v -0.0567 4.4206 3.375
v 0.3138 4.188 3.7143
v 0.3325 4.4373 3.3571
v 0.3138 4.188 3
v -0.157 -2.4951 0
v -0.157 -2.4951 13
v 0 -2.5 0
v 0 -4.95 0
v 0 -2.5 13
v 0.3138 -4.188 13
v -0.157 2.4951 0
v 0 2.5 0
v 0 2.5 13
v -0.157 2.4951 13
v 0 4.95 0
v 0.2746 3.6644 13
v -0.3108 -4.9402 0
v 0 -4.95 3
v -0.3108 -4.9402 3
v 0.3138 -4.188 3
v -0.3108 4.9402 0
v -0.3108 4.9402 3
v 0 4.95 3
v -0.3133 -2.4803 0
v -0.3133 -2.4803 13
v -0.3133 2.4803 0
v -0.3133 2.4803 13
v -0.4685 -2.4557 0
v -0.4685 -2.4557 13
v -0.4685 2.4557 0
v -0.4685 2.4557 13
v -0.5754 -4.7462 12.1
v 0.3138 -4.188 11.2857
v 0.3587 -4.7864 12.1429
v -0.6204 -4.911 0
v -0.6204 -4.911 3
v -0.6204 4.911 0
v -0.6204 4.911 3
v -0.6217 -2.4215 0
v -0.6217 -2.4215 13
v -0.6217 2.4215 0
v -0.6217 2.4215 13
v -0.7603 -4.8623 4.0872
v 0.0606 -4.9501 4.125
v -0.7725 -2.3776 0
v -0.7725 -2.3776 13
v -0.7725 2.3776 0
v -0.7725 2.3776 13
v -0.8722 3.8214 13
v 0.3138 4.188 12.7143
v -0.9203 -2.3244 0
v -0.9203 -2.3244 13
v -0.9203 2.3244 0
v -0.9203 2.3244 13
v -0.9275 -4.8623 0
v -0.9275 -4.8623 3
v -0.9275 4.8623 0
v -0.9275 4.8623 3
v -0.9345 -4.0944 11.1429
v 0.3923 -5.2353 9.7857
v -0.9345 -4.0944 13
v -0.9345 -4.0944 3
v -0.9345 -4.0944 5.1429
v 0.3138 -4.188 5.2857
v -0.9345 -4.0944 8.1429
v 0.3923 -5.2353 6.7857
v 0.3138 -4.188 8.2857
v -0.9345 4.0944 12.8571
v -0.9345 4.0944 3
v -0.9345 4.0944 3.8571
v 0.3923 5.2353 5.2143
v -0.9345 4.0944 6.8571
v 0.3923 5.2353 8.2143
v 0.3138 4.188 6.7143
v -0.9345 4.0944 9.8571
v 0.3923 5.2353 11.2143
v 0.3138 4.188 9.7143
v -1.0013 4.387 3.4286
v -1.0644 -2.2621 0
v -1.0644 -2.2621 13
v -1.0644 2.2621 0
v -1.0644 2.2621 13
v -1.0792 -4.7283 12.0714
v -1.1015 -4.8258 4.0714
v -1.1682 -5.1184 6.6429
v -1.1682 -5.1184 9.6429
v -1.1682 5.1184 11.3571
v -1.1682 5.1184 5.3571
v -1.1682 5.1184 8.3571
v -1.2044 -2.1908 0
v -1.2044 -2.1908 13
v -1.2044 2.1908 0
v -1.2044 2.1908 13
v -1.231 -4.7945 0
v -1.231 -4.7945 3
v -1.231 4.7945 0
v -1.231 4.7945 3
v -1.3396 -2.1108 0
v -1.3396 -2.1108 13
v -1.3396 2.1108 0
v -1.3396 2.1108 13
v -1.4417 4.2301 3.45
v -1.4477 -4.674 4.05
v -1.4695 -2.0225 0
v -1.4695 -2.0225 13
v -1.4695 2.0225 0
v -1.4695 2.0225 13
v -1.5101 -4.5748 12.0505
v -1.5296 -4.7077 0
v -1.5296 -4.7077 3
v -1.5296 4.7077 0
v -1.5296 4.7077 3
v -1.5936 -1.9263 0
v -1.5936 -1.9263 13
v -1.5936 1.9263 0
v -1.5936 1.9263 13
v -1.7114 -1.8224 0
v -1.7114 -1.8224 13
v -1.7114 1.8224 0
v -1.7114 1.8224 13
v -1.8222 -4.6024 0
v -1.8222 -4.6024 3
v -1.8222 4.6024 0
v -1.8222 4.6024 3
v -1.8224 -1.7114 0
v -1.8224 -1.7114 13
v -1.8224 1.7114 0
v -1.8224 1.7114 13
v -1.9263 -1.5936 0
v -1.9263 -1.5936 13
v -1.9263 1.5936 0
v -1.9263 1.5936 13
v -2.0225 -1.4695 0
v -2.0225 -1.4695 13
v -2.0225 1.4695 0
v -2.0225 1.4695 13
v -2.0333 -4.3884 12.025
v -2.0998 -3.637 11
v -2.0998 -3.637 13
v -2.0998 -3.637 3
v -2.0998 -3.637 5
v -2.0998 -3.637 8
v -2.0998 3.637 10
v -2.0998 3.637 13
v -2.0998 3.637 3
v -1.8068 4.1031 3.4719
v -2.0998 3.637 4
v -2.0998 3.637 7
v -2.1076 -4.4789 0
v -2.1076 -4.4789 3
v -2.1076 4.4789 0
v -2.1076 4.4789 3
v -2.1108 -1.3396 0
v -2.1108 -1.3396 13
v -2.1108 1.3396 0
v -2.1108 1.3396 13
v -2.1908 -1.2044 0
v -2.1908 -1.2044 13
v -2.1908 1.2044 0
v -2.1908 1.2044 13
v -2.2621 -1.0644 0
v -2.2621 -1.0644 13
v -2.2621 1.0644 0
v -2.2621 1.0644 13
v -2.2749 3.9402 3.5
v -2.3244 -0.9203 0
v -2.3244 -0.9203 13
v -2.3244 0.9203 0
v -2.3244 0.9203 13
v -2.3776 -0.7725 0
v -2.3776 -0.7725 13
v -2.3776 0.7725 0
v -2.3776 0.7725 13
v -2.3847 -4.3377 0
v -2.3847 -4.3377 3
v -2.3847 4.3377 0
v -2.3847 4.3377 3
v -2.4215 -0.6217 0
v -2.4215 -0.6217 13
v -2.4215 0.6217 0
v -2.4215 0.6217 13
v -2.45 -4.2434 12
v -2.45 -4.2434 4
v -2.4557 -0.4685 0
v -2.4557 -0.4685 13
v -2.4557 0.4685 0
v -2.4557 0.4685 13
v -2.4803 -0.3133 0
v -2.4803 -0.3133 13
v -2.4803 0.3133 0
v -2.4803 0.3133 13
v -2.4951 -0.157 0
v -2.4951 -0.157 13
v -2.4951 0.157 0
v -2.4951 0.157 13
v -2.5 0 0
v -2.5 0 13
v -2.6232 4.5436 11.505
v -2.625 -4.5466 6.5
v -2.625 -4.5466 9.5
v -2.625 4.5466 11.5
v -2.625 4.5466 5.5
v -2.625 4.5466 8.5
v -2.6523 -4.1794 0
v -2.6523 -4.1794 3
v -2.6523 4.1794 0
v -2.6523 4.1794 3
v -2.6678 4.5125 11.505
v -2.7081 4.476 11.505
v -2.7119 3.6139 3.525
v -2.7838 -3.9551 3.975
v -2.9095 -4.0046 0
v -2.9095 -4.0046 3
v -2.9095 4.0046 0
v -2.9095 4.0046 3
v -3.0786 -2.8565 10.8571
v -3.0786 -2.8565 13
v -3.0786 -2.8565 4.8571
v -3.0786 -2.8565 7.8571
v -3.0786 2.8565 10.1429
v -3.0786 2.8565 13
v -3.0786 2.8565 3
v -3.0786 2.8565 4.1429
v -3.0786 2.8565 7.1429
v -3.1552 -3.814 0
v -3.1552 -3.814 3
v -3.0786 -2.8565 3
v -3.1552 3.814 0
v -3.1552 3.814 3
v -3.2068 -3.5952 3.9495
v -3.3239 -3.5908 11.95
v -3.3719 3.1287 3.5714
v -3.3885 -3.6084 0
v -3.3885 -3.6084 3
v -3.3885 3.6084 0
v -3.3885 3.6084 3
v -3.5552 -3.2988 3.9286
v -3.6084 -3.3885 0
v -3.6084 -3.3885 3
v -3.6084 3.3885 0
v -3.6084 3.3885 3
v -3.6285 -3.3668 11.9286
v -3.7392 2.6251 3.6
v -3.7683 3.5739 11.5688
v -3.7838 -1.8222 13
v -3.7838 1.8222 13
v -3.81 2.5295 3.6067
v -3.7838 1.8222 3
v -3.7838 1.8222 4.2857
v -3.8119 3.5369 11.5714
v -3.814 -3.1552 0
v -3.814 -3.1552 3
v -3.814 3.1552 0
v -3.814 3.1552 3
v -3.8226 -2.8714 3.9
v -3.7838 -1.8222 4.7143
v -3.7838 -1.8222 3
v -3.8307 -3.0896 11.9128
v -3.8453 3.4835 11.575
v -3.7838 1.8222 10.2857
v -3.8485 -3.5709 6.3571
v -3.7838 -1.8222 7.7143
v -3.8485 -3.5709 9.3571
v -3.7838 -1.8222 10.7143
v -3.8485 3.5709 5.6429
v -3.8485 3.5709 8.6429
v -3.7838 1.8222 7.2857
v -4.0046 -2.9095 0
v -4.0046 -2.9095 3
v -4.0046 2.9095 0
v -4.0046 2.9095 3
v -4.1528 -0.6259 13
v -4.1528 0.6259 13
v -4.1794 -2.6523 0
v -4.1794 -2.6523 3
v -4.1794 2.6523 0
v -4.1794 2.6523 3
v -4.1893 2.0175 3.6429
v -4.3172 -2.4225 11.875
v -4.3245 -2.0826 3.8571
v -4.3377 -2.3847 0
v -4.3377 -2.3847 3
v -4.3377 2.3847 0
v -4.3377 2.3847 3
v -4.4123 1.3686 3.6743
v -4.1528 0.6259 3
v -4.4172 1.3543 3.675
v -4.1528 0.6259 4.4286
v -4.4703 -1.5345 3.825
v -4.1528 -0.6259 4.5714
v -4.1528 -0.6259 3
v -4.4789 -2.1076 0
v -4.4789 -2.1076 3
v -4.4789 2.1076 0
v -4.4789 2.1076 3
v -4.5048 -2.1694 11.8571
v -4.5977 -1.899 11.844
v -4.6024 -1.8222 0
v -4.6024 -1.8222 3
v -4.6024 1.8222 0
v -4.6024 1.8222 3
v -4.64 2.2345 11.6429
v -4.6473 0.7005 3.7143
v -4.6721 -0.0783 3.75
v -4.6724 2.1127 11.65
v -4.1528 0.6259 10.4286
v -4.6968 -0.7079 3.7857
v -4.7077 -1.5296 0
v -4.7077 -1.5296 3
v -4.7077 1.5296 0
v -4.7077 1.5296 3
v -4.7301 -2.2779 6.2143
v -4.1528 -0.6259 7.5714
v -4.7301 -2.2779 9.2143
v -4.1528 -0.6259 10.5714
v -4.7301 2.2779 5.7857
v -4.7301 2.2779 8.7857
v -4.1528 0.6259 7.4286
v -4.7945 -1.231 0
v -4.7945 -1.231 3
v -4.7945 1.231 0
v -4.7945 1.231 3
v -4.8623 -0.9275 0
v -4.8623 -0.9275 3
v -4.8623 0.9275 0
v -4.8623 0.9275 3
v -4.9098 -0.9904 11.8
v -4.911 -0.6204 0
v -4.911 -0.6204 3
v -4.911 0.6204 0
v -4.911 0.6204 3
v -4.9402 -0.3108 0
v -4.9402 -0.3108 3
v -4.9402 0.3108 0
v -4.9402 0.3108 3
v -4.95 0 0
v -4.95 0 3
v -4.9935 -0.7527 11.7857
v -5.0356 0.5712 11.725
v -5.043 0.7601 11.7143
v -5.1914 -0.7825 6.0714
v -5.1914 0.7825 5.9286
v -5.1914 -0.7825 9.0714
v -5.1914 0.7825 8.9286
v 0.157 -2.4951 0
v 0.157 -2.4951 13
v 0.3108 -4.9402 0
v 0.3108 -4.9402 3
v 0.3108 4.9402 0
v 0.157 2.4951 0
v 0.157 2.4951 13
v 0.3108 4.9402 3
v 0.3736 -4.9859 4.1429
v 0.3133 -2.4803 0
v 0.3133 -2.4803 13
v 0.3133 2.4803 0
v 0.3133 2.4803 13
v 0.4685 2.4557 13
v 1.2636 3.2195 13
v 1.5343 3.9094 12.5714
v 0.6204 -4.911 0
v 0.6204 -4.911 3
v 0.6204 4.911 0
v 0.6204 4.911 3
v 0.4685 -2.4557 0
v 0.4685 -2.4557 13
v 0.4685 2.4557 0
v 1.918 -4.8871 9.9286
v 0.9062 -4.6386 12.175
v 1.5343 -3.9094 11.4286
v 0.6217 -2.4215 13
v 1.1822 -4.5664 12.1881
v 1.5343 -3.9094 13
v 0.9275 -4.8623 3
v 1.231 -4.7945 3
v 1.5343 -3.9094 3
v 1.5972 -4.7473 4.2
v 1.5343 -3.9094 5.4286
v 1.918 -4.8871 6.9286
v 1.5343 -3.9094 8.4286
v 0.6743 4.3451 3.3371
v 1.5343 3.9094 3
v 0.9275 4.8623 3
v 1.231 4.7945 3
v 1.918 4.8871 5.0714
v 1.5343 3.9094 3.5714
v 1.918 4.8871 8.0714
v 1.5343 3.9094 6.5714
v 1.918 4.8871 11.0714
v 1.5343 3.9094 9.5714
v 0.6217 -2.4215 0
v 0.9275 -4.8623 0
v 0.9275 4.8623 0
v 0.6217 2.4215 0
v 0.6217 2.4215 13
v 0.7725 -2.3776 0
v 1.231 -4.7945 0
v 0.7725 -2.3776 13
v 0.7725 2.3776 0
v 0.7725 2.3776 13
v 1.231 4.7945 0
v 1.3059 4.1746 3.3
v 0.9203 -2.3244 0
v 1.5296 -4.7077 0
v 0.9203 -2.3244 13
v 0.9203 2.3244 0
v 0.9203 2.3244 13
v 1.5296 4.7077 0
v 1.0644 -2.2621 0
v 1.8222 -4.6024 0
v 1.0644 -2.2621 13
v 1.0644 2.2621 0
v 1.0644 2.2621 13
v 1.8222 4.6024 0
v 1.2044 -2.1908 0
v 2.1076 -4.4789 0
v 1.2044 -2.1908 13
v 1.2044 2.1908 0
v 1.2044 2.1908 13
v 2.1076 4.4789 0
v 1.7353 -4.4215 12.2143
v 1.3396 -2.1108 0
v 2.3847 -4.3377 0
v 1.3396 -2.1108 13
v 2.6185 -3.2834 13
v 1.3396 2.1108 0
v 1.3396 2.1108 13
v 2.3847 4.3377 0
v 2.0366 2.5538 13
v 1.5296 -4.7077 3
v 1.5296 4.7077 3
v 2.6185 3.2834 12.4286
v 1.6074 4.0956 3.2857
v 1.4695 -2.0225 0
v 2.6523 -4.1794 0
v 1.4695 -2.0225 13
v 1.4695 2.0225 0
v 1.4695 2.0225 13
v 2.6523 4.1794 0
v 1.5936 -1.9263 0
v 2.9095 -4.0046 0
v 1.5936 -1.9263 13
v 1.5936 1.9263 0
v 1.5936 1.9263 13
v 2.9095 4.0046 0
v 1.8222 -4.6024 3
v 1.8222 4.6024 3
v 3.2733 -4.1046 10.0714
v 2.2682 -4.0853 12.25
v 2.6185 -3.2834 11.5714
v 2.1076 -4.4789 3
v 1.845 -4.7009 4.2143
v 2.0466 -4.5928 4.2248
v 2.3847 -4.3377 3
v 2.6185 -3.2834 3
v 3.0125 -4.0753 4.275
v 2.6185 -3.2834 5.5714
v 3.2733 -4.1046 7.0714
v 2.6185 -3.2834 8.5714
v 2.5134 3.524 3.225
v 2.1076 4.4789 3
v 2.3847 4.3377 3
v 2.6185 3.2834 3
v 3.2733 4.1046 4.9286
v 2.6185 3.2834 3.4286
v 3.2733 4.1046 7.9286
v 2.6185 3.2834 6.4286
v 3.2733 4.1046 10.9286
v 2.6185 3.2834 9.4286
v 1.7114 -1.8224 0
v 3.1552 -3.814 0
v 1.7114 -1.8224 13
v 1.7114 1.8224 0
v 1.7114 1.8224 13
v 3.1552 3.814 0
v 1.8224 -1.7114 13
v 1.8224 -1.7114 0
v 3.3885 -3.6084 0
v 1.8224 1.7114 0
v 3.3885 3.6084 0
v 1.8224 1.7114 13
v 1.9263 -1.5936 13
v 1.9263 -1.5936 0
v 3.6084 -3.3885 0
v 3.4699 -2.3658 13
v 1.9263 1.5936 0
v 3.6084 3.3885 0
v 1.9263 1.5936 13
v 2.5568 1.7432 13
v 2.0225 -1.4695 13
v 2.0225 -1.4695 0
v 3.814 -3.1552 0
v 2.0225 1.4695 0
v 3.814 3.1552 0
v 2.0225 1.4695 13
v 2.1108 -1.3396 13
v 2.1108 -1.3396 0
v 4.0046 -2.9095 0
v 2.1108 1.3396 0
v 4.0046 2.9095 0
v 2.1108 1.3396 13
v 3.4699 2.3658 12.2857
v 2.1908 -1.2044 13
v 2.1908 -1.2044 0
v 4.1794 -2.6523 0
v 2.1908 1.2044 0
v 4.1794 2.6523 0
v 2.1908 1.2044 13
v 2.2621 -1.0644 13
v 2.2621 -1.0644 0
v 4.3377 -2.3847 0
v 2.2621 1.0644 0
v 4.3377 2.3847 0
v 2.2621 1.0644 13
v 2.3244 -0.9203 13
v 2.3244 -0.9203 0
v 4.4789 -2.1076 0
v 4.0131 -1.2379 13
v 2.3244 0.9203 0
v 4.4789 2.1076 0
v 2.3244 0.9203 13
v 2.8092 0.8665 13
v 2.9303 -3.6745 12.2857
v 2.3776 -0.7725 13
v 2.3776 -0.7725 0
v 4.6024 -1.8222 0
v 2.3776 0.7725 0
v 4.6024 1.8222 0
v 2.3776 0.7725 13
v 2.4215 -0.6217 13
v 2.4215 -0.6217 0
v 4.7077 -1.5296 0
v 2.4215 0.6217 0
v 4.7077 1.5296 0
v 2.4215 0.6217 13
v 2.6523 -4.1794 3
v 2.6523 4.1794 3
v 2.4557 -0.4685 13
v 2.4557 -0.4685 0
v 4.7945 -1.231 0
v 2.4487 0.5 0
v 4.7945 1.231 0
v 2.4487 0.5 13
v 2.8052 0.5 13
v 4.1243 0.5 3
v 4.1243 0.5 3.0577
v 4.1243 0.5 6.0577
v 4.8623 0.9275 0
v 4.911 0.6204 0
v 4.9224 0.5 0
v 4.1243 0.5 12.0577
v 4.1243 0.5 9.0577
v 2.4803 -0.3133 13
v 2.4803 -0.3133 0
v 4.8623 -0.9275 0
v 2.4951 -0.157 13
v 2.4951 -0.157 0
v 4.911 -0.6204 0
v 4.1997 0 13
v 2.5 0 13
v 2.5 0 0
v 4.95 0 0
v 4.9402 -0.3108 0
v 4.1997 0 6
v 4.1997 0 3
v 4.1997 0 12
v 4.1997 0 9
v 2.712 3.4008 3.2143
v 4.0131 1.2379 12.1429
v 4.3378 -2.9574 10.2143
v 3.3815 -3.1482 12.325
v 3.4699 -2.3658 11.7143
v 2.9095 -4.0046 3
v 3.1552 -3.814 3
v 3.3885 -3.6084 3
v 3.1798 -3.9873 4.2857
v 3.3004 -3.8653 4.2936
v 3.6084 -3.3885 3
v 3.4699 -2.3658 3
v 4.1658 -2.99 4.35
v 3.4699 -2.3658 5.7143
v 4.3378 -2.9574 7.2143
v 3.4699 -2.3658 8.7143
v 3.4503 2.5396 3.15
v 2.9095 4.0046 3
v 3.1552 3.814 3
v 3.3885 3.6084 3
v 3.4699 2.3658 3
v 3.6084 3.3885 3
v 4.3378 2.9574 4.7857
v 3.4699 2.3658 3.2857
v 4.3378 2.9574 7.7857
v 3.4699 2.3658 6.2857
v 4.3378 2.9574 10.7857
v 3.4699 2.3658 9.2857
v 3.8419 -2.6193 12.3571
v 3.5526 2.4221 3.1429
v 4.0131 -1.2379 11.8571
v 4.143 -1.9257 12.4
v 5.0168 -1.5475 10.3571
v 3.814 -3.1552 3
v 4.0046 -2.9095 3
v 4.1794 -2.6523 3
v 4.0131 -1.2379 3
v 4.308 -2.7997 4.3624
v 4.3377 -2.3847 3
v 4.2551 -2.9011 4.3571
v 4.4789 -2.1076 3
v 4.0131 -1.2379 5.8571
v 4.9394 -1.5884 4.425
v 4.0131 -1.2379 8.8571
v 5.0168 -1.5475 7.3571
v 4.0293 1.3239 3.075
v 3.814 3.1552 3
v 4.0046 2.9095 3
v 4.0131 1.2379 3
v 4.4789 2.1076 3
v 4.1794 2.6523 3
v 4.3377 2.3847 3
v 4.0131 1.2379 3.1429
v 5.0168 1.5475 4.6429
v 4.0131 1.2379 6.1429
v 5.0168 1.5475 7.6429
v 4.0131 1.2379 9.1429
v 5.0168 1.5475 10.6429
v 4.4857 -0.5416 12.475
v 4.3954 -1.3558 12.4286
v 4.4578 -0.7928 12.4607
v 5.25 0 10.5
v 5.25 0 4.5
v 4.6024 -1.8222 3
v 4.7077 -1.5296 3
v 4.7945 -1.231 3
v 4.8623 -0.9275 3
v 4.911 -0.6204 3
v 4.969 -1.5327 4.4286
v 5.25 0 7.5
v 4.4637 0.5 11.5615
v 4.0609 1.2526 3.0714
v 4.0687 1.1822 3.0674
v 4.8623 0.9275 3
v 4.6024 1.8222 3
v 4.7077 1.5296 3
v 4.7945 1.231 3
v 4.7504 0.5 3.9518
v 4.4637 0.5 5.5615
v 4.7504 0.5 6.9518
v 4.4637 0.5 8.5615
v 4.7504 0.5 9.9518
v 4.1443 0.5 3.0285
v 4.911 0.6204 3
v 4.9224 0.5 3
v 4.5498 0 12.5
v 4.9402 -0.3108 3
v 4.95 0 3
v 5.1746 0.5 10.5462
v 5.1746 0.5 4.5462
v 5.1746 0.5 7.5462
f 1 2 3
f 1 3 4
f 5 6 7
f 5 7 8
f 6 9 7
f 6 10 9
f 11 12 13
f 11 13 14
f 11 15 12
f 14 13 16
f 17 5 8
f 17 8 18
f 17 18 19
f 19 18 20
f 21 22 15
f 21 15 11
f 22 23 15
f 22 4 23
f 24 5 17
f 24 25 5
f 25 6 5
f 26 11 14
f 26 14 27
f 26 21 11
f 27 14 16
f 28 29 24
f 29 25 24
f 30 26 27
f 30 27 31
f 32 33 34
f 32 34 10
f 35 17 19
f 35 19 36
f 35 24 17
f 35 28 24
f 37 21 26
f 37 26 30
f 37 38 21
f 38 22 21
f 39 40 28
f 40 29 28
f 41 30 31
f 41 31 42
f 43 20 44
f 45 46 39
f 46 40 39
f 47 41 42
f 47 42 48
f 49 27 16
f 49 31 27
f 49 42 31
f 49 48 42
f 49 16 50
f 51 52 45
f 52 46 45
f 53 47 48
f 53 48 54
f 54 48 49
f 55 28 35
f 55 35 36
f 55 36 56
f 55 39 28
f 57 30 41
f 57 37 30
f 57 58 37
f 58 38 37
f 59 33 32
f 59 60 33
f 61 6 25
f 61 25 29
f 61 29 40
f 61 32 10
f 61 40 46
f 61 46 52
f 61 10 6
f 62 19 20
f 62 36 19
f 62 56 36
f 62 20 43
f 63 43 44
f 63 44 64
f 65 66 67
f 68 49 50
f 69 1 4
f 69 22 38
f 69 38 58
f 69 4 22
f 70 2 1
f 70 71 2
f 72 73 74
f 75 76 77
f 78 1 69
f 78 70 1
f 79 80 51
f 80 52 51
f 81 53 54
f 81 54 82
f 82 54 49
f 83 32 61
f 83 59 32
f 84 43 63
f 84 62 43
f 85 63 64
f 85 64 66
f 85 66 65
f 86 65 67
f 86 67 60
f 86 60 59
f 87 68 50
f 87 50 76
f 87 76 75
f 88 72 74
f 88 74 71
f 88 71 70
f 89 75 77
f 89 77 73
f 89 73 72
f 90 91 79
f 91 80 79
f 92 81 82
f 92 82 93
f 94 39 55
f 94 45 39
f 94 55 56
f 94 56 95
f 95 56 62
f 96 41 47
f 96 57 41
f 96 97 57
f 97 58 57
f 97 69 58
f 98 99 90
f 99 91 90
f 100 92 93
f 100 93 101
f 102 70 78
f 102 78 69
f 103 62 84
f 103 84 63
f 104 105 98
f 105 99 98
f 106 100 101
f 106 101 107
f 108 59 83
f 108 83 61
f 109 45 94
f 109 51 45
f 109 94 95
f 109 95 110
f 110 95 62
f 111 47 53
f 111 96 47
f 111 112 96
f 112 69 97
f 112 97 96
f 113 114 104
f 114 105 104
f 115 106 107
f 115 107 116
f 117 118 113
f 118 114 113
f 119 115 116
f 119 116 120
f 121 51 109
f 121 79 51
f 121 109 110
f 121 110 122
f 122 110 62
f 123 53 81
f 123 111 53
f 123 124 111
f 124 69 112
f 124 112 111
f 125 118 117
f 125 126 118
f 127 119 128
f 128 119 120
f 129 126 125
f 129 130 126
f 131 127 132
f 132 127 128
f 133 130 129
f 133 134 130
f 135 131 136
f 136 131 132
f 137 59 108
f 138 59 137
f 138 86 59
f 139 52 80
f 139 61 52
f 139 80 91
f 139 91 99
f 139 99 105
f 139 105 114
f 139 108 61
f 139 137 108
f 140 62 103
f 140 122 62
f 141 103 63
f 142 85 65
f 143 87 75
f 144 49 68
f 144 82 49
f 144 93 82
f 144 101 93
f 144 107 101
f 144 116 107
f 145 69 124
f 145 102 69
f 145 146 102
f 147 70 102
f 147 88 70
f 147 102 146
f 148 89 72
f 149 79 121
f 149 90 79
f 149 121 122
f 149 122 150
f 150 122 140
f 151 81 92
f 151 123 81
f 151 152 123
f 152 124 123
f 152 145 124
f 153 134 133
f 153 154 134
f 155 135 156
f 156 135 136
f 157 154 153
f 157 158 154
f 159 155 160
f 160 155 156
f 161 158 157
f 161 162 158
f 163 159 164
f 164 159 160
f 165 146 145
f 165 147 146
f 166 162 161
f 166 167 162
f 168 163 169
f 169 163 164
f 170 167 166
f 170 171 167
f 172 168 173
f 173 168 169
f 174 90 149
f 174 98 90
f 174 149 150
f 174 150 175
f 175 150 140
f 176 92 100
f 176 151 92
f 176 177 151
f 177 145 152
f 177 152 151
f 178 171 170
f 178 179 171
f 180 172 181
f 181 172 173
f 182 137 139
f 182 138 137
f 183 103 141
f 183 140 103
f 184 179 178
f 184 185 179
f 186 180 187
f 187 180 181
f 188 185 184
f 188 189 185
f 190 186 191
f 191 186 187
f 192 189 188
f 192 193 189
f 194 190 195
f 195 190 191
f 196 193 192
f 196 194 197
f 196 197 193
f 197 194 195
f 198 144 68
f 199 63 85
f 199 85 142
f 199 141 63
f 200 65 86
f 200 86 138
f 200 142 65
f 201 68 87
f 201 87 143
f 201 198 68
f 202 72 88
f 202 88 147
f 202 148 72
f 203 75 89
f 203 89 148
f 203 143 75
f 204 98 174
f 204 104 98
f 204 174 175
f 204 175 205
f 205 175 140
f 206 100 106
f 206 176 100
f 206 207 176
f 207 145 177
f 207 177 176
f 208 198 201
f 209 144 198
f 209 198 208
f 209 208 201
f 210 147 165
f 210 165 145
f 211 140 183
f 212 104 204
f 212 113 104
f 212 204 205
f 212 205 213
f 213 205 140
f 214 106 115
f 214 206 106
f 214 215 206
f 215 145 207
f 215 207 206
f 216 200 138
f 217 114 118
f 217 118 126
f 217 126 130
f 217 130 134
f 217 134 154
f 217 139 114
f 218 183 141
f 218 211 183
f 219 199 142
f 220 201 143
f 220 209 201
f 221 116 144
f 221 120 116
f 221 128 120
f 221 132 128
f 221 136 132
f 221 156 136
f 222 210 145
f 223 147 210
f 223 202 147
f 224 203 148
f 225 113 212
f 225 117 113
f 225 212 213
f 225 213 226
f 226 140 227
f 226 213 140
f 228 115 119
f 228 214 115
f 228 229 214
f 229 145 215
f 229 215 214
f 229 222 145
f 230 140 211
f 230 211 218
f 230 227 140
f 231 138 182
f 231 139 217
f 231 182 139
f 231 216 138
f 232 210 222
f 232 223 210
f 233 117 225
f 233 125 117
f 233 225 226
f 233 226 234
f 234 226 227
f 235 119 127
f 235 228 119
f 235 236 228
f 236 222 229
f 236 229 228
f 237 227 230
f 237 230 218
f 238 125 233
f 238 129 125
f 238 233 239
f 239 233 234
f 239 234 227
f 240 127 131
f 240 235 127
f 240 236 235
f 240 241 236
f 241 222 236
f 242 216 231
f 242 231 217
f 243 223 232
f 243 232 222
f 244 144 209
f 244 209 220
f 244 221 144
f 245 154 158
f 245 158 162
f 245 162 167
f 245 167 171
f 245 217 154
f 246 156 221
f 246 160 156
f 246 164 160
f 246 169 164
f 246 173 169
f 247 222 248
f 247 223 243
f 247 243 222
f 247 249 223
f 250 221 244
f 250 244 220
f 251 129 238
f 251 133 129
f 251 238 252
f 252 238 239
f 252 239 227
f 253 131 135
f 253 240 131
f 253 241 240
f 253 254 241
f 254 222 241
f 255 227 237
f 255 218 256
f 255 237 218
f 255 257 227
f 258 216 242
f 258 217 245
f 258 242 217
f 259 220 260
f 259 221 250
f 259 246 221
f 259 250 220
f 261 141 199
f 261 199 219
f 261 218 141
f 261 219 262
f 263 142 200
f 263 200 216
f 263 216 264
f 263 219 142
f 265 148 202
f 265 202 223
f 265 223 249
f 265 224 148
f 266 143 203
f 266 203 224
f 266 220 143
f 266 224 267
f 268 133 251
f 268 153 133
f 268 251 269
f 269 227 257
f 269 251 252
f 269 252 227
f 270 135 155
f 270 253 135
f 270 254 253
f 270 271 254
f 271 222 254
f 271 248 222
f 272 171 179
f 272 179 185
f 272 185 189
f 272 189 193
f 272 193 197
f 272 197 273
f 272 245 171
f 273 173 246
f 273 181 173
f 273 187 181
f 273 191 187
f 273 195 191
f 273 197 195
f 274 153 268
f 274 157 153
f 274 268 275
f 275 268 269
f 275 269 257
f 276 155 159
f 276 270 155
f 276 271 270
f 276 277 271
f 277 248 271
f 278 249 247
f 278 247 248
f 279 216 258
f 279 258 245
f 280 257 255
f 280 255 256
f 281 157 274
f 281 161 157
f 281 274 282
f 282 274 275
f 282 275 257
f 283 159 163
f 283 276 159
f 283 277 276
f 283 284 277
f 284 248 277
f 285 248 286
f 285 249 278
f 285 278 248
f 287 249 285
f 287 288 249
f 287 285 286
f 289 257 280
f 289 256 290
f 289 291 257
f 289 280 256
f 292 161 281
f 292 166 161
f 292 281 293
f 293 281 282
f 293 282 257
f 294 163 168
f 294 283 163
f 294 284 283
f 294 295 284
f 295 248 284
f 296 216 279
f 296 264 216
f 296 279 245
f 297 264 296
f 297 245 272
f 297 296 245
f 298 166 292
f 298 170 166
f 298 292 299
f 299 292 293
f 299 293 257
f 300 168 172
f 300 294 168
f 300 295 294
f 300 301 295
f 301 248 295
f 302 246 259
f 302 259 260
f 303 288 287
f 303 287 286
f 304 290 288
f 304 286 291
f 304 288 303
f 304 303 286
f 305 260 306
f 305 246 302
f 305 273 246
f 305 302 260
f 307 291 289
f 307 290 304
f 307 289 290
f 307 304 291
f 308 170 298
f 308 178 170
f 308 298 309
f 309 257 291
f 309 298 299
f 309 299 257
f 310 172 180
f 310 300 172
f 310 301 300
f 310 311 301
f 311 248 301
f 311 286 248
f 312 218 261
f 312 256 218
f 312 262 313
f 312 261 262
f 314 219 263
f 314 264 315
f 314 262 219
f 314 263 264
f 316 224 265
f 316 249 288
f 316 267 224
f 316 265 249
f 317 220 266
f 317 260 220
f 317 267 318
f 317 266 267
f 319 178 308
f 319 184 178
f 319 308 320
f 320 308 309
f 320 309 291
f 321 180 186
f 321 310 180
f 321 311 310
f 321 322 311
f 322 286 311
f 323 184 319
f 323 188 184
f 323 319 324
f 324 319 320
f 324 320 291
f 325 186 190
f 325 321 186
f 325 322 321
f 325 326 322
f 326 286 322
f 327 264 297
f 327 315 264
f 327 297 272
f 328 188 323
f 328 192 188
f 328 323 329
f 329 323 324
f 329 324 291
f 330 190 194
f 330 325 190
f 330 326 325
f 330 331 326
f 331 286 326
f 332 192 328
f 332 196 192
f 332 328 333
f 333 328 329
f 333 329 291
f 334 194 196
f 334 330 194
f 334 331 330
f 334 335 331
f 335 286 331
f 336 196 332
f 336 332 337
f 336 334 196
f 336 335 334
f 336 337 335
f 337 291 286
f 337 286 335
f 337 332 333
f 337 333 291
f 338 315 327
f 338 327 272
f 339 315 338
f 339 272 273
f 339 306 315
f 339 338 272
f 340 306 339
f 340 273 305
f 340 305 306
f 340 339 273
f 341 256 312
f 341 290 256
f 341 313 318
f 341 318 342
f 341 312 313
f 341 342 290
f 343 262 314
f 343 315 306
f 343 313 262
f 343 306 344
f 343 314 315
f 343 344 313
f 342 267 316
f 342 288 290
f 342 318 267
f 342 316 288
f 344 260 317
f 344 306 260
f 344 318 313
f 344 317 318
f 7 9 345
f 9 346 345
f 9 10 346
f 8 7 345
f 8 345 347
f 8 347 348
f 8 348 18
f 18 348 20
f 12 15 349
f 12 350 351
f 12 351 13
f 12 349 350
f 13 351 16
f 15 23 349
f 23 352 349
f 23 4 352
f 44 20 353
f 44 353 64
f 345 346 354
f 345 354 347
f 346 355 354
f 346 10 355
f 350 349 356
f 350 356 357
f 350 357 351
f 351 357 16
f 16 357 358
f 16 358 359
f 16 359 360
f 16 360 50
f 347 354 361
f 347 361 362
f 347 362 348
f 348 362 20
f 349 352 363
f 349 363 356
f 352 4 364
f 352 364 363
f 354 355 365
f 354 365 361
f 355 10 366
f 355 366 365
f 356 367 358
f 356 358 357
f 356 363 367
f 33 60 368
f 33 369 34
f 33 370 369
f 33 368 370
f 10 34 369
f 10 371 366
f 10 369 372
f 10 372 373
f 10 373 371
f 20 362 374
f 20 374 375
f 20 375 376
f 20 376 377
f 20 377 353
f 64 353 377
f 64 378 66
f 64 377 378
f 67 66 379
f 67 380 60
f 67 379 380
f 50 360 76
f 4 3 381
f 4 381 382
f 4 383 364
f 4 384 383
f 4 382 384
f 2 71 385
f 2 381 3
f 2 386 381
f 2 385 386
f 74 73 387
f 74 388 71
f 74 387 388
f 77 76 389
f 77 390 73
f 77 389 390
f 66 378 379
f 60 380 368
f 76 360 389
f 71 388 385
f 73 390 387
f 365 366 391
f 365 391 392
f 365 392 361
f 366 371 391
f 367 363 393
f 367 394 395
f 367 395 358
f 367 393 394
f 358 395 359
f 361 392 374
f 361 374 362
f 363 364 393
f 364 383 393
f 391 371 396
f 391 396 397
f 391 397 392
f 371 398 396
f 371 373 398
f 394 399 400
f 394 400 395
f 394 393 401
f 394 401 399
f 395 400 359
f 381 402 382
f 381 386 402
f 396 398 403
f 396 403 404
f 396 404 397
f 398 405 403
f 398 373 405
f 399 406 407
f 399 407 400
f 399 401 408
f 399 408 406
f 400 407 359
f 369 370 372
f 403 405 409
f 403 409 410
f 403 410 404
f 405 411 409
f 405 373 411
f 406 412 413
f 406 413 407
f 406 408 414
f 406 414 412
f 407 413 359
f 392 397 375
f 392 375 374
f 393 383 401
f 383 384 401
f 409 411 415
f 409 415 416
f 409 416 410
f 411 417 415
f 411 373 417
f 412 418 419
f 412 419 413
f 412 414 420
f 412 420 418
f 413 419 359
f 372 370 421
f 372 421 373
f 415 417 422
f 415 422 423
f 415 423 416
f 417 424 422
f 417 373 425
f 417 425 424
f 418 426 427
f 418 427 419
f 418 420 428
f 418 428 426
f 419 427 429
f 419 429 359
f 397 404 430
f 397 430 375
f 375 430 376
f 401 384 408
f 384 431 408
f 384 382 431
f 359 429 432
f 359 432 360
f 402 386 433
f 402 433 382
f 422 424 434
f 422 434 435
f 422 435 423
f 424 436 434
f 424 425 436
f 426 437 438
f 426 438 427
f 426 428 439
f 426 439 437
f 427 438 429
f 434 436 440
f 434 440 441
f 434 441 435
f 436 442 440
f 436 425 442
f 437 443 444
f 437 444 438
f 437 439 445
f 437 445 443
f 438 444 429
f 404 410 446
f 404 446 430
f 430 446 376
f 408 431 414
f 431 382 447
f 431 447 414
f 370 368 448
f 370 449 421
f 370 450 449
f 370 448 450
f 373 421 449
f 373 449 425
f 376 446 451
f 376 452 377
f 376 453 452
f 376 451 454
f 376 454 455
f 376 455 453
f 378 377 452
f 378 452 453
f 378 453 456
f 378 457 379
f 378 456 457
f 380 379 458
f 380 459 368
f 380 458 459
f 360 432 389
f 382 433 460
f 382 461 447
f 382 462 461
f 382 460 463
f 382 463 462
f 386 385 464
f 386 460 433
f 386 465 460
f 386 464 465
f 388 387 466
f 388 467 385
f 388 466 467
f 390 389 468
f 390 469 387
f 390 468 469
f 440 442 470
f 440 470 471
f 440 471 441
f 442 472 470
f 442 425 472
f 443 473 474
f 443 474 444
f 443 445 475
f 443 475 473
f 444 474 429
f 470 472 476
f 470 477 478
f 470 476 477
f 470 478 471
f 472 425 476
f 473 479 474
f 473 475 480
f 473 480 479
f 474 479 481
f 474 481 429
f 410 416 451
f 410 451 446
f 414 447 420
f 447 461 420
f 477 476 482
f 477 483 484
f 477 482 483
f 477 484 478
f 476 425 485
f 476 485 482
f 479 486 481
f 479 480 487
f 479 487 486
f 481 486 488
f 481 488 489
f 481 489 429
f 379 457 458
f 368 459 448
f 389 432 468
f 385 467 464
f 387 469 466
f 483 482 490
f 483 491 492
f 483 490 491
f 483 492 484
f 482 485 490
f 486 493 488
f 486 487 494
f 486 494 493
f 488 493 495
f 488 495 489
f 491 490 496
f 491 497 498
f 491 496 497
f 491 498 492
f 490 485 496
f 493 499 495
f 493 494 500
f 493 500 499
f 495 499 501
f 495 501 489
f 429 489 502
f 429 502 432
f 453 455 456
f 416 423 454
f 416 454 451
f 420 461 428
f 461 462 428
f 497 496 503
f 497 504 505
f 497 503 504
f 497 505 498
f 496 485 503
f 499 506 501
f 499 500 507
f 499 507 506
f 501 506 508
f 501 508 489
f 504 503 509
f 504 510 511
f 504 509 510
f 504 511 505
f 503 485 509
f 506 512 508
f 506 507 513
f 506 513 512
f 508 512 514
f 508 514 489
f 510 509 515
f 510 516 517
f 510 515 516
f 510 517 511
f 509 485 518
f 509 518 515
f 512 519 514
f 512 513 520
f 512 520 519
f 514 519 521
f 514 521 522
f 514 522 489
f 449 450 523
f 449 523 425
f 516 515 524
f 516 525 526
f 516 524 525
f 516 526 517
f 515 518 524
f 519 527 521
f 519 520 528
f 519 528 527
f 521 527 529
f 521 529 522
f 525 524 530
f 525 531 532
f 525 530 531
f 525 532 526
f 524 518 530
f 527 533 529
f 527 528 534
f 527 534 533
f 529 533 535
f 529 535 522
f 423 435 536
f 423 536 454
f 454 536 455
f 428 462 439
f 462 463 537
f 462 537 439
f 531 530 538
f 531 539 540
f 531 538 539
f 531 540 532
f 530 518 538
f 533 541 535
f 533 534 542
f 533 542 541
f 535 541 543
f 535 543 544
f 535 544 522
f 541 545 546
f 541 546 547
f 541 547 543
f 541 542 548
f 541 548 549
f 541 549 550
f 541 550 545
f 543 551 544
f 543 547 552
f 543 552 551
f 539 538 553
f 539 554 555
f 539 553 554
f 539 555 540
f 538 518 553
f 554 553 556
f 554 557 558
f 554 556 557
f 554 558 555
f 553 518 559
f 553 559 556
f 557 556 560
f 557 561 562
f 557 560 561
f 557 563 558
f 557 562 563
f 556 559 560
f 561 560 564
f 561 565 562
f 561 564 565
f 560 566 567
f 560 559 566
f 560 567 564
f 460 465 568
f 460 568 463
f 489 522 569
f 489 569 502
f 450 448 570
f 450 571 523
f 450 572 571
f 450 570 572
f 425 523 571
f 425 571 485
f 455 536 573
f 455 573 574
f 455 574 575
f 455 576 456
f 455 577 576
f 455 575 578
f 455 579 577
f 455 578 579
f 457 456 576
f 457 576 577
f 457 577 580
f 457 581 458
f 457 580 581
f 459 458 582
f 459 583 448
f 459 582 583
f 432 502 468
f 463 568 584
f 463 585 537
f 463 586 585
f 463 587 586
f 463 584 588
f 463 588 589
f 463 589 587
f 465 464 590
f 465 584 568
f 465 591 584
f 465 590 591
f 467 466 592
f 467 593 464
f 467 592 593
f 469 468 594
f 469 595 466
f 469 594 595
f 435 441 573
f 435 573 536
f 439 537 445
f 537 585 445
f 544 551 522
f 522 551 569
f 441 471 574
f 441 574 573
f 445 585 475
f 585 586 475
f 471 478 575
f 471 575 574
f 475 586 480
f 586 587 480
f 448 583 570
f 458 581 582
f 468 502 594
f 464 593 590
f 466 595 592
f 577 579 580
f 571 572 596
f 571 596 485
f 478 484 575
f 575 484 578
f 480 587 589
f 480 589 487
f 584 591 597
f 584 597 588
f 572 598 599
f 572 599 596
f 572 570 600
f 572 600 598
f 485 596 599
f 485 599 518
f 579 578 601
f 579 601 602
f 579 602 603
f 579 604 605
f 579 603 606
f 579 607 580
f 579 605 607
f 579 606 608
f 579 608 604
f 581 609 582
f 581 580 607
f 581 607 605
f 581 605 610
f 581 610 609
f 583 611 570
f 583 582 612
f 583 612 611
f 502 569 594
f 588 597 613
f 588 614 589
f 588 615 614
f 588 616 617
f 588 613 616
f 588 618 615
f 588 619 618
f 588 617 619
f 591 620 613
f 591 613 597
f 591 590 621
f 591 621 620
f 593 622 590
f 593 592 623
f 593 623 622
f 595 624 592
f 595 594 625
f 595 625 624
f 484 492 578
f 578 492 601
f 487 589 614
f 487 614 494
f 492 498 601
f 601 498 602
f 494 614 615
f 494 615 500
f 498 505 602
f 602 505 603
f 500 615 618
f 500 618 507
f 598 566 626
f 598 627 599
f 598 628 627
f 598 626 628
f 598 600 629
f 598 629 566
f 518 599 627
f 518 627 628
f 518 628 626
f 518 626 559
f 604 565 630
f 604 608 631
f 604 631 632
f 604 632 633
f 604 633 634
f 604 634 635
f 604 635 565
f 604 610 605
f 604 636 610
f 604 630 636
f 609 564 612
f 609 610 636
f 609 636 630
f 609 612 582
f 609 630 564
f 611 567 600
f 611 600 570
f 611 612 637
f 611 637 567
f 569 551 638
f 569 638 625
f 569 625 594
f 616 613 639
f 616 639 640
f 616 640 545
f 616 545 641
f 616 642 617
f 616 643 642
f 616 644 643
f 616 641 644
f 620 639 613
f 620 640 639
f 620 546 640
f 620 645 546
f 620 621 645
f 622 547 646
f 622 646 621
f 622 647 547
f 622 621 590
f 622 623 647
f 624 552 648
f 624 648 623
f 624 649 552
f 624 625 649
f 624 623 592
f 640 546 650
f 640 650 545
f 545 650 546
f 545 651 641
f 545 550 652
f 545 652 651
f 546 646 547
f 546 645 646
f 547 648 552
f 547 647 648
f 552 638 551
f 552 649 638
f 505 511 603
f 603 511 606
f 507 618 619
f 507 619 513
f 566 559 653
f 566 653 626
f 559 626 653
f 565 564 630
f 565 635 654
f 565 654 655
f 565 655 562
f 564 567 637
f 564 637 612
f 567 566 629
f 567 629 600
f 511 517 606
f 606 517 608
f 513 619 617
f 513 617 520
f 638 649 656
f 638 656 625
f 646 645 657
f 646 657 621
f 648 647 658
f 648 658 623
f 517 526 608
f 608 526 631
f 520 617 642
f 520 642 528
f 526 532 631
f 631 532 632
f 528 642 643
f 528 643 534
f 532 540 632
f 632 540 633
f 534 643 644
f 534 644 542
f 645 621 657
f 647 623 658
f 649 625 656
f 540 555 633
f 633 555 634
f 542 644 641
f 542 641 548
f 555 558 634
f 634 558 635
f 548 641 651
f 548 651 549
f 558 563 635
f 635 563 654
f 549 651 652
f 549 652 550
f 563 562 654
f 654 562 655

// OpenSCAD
// file: ../src/polyScrewThread_r1.scad
/*
 *    polyScrewThread_r1.scad    by aubenc @ Thingiverse
 *
 * This script contains the library modules that can be used to generate
 * threaded rods, screws and nuts.
 *
 * http://www.thingiverse.com/thing:8796
 *
 * CC Public Domain
 */


/* Example:
 * Just a 100mm long threaded rod.
 *
 * screw_thread(15,   // Outer diameter of the thread
 *               4,   // Step, traveling length per turn, also, tooth height, whatever...
 *              55,   // Degrees for the shape of the tooth 
 *                       (XY plane = 0, Z = 90, btw, 0 and 90 will/should not work...)
 *             100,   // Length (Z) of the tread
 *            PI/2,   // Resolution, one face each "PI/2" mm of the perimeter, 
 *               0);  // Countersink style:
 *                         -2 - Not even flat ends
 *                         -1 - Bottom (countersink'd and top flat)
 *                          0 - None (top and bottom flat)
 *                          1 - Top (bottom flat)
 *                          2 - Both (countersink'd)
 */
module screw_thread(od,st,lf0,lt,rs,cs)
{
    or=od/2;
    ir=or-st/2*cos(lf0)/sin(lf0);
    pf=2*PI*or;
    sn=floor(pf/rs);
    lfxy=360/sn;
    ttn=round(lt/st+1);
    zt=st/sn;

    intersection()
    {
        if (cs >= -1)
        {
           thread_shape(cs,lt,or,ir,sn,st);
        }

        full_thread(ttn,st,sn,zt,lfxy,or,ir);
    }
}

/* Example.
 * A nut for the thread rod example.
 *
 * hexa_nut(24,  // Distance between flats
 *           8,  // Height 
 *           4,  // Step height (the half will be used to countersink the ends)
 *          55,  // Degrees (same as used for the screw_thread example)
 *          15,  // Outer diameter of the thread to match
 *         0.5)  // Resolution, you may want to set this to small values
 *                  (quite high res) to minimize overhang issues
 *
 */
module hex_nut(df,hg,sth,clf,cod,crs)
{

    difference()
    {
        hex_head(hg,df);

        hex_countersink_ends(sth/2,cod,clf,crs,hg);

        screw_thread(cod,sth,clf,hg,crs,-2);
    }
}


module hex_screw(od,st,lf0,lt,rs,cs,df,hg,ntl,ntd)
{
    ntr=od/2-(st/2)*cos(lf0)/sin(lf0);

    union()
    {
        hex_head(hg,df);

        translate([0,0,hg])
        if ( ntl == 0 )
        {
            cylinder(h=0.01, r=ntr, center=true);
        }
        else
        {
            if ( ntd == -1 )
            {
                cylinder(h=ntl+0.01, r=ntr, $fn=floor(od*PI/rs), center=false);
            }
            else if ( ntd == 0 )
            {
                union()
                {
                    cylinder(h=ntl-st/2,
                             r=od/2, $fn=floor(od*PI/rs), center=false);

                    translate([0,0,ntl-st/2])
                    cylinder(h=st/2,
                             r1=od/2, r2=ntr, 
                             $fn=floor(od*PI/rs), center=false);
                }
            }
            else
            {
                cylinder(h=ntl, r=ntd/2, $fn=ntd*PI/rs, center=false);
            }
        }

        translate([0,0,ntl+hg]) screw_thread(od,st,lf0,lt,rs,cs);
    }
}

module hex_screw_0(od,st,lf0,lt,rs,cs,df,hg,ntl,ntd)
{
    ntr=od/2-(st/2)*cos(lf0)/sin(lf0);

    union()
    {
        hex_head_0(hg,df);

        translate([0,0,hg])
        if ( ntl == 0 )
        {
            cylinder(h=0.01, r=ntr, center=true);
        }
        else
        {
            if ( ntd == -1 )
            {
                cylinder(h=ntl+0.01, r=ntr, $fn=floor(od*PI/rs), center=false);
            }
            else if ( ntd == 0 )
            {
                union()
                {
                    cylinder(h=ntl-st/2,
                             r=od/2, $fn=floor(od*PI/rs), center=false);

                    translate([0,0,ntl-st/2])
                    cylinder(h=st/2,
                             r1=od/2, r2=ntr, 
                             $fn=floor(od*PI/rs), center=false);
                }
            }
            else
            {
                cylinder(h=ntl, r=ntd/2, $fn=ntd*PI/rs, center=false);
            }
        }

        translate([0,0,ntl+hg]) screw_thread(od,st,lf0,lt,rs,cs);
    }
}

module thread_shape(cs,lt,or,ir,sn,st)
{
    if ( cs == 0 )
    {
        cylinder(h=lt, r=or, $fn=sn, center=false);
    }
    else
    {
        union()
        {
            translate([0,0,st/2])
              cylinder(h=lt-st+0.005, r=or, $fn=sn, center=false);

            if ( cs == -1 || cs == 2 )
            {
                cylinder(h=st/2, r1=ir, r2=or, $fn=sn, center=false);
            }
            else
            {
                cylinder(h=st/2, r=or, $fn=sn, center=false);
            }

            translate([0,0,lt-st/2])
            if ( cs == 1 || cs == 2 )
            {
                  cylinder(h=st/2, r1=or, r2=ir, $fn=sn, center=false);
            }
            else
            {
                cylinder(h=st/2, r=or, $fn=sn, center=false);
            }
        }
    }
}

module full_thread(ttn,st,sn,zt,lfxy,or,ir)
{
  if(ir >= 0.2)
  {
    for(i=[0:ttn-1])
    {
        for(j=[0:sn-1])
			assign( pt = [	[0,                  0,                  i*st-st            ],
                        [ir*cos(j*lfxy),     ir*sin(j*lfxy),     i*st+j*zt-st       ],
                        [ir*cos((j+1)*lfxy), ir*sin((j+1)*lfxy), i*st+(j+1)*zt-st   ],
								[0,0,i*st],
                        [or*cos(j*lfxy),     or*sin(j*lfxy),     i*st+j*zt-st/2     ],
                        [or*cos((j+1)*lfxy), or*sin((j+1)*lfxy), i*st+(j+1)*zt-st/2 ],
                        [ir*cos(j*lfxy),     ir*sin(j*lfxy),     i*st+j*zt          ],
                        [ir*cos((j+1)*lfxy), ir*sin((j+1)*lfxy), i*st+(j+1)*zt      ],
                        [0,                  0,                  i*st+st            ]	])
        {
            polyhedron(points=pt,
              		  triangles=[	[1,0,3],[1,3,6],[6,3,8],[1,6,4],
											[0,1,2],[1,4,2],[2,4,5],[5,4,6],[5,6,7],[7,6,8],
											[7,8,3],[0,2,3],[3,2,7],[7,2,5]	]);
        }
    }
  }
  else
  {
    echo("Step Degrees too agresive, the thread will not be made!!");
    echo("Try to increase de value for the degrees and/or...");
    echo(" decrease the pitch value and/or...");
    echo(" increase the outer diameter value.");
  }
}

module hex_head(hg,df)
{
	rd0=df/2/sin(60);
	x0=0;	x1=df/2;	x2=x1+hg/2;
	y0=0;	y1=hg/2;	y2=hg;

	intersection()
	{
	   cylinder(h=hg, r=rd0, $fn=6, center=false);

		rotate_extrude(convexity=10, $fn=6*round(df*PI/6/0.5))
		polygon([ [x0,y0],[x1,y0],[x2,y1],[x1,y2],[x0,y2] ]);
	}
}

module hex_head_0(hg,df)
{
    cylinder(h=hg, r=df/2/sin(60), $fn=6, center=false);
}

module hex_countersink_ends(chg,cod,clf,crs,hg)
{
    translate([0,0,-0.1])
    cylinder(h=chg+0.01, 
             r1=cod/2, 
             r2=cod/2-(chg+0.1)*cos(clf)/sin(clf),
             $fn=floor(cod*PI/crs), center=false);

    translate([0,0,hg-chg+0.1])
    cylinder(h=chg+0.01, 
             r1=cod/2-(chg+0.1)*cos(clf)/sin(clf),
             r2=cod/2, 
             $fn=floor(cod*PI/crs), center=false);
}
// file: ../src/WINDGAUGE02A_R02.scad
$fn=100; // model faces resolution.
include <../configuration.scad>
include <polyScrewThread_r1.scad>
PI=3.141592;

//Drzak rotoru se závitem

WINDGAUGE02A_R02();

module WINDGAUGE02A_R02()
    {
    //setihrana matice
    difference()
        {
        union()
            {
            //závit
            screw_thread((12-S01_tolerance_zavit),3,55,R01_vyska_preryti_statoru,PI/2,2);  
                           
            //spodní podložka        
            translate([0,0,-R01_mezera_mezi_statorem_rotorem/2])    
                cylinder (h = R01_mezera_mezi_statorem_rotorem, r=(lozisko_prumer_vnitrni+2*lozisko_prekryv+2)/2, center = true, $fn=100);     
            }
                  
        //otvor  
        translate([0,0,-R01_mezera_mezi_statorem_rotorem-0.05])        
            cylinder (h = R01_vyska_preryti_statoru+R01_mezera_mezi_statorem_rotorem+0.1, r=prumer_osicky/2, $fn=100);


//sterbina
translate([0,0,-R01_mezera_mezi_statorem_rotorem]) 
   cube([(lozisko_prumer_vnitrni+2*lozisko_prekryv+2)/2+2,sterbina_na_osicku,R01_vyska_preryti_statoru+R01_mezera_mezi_statorem_rotorem+0.2]);


        }

    }
// file: ../configuration.scad
$fn=40; // model faces resolution.

//OBECNE PARAMETRY 
//----------------------------------------------------------------
//----------------------------------------------------------------
//WINDGAUGE02A_S02 - Parametry pro hlavni valec anemometru
S01_hloubka_zavitu=4;
S01_vyska=80;
S01_prumer_vnitrni=40;
S01_sila_materialu=1.3;
S01_vyska_horni_zavit=10;
S01_vyska_spodniho_zavitu=10;
S01_sila_drzaku_RJ11=3; //vyška drážky
S01_hrana_A_RJ11=12.3;
S01_hrana_B_RJ11=19;
S01_tolerance_zavit=1.5;

//Obecné parametry
prumer_osicky=5;
sterbina_na_osicku=0.5; //aby nepraskal a držel držák rotoru na hřídelce

//Rozmery modulu se senzorem
senzor_delka=20.32;
senzor_sirka=10.16;
senzor_vyska_IO=2;
senzor_odstup_od_magnetu=2;

//Parametry loziska
lozisko_prumer_vnitrni=4.9;
lozisko_prumer_vnejsi=16.1;
lozisko_vyska=5;
lozisko_prekryv=1.5;

//Parametry magnetu
magnet_prumer=6.3;
magnet_vyska=5;
magnet_zapusteni=4;
magnet_tolerance_prumeru=0.2;

R03_vyska_narezeni_hridelky=5;

//Parametry sroubu
prumer_sroubu=3.4;
prumer_hlavy_sroubu=6;
vyska_hlavy_sroubu=4;
vyska_matky=3;
sirka_matky=6.7;

sirka_matky_tol=0.175;
prumer_orechu=10;

//WINDGAUGE02A_R01 //pro lopatku
L01_hrana_drzaku_a=10;
L01_hrana_drzaku_b=3;
L01_delka_uchytu=20;
L01_prumer_lopatky=40;
L01_sila_materialu_lopatky=1.2;

//WINDGAUGE02A_D01 //uchyt velky
D01_material_pod_zavitem=5;
D01_material_za_zavitem=3;
D01_material_pred_zavitem=2;
D01_delka_tyce=60;
D01_sirka_tyce=10;

//WINDGAUGE02A_D02 //uchyt na sloup
D02_sila_materialu=6;
D02_vyska_uchytky=40;
D02_prumer_obruby=27; 

//27mm - 3/4 trubka
D02_delka_celeho_uchytu=60;
D02_dotahova_vzdalenost=1.5;
D02_prumer_uchytneho_sroubu=4.2;
D02_sirka_matky=9.1; //pro M4
D02_vyska_matky=3;

//WINDGAUGE02A_R01 //rotor s prekritim statoru
R01_vyska_preryti_statoru=10;
R01_sila_materialu_pro_prekriti=1.3;
R01_mezera_mezi_statorem_rotorem=3;

//WINDGAUGE02A_R03 //drzak magnetu
R05_sirka_matky=10;
// main file
include <../configuration.scad>

$fn=100; // model faces resolution.
use <../src/WINDGAUGE02A_R02.scad>

translate([0,0,R01_mezera_mezi_statorem_rotorem])
    WINDGAUGE02A_R02();

            
